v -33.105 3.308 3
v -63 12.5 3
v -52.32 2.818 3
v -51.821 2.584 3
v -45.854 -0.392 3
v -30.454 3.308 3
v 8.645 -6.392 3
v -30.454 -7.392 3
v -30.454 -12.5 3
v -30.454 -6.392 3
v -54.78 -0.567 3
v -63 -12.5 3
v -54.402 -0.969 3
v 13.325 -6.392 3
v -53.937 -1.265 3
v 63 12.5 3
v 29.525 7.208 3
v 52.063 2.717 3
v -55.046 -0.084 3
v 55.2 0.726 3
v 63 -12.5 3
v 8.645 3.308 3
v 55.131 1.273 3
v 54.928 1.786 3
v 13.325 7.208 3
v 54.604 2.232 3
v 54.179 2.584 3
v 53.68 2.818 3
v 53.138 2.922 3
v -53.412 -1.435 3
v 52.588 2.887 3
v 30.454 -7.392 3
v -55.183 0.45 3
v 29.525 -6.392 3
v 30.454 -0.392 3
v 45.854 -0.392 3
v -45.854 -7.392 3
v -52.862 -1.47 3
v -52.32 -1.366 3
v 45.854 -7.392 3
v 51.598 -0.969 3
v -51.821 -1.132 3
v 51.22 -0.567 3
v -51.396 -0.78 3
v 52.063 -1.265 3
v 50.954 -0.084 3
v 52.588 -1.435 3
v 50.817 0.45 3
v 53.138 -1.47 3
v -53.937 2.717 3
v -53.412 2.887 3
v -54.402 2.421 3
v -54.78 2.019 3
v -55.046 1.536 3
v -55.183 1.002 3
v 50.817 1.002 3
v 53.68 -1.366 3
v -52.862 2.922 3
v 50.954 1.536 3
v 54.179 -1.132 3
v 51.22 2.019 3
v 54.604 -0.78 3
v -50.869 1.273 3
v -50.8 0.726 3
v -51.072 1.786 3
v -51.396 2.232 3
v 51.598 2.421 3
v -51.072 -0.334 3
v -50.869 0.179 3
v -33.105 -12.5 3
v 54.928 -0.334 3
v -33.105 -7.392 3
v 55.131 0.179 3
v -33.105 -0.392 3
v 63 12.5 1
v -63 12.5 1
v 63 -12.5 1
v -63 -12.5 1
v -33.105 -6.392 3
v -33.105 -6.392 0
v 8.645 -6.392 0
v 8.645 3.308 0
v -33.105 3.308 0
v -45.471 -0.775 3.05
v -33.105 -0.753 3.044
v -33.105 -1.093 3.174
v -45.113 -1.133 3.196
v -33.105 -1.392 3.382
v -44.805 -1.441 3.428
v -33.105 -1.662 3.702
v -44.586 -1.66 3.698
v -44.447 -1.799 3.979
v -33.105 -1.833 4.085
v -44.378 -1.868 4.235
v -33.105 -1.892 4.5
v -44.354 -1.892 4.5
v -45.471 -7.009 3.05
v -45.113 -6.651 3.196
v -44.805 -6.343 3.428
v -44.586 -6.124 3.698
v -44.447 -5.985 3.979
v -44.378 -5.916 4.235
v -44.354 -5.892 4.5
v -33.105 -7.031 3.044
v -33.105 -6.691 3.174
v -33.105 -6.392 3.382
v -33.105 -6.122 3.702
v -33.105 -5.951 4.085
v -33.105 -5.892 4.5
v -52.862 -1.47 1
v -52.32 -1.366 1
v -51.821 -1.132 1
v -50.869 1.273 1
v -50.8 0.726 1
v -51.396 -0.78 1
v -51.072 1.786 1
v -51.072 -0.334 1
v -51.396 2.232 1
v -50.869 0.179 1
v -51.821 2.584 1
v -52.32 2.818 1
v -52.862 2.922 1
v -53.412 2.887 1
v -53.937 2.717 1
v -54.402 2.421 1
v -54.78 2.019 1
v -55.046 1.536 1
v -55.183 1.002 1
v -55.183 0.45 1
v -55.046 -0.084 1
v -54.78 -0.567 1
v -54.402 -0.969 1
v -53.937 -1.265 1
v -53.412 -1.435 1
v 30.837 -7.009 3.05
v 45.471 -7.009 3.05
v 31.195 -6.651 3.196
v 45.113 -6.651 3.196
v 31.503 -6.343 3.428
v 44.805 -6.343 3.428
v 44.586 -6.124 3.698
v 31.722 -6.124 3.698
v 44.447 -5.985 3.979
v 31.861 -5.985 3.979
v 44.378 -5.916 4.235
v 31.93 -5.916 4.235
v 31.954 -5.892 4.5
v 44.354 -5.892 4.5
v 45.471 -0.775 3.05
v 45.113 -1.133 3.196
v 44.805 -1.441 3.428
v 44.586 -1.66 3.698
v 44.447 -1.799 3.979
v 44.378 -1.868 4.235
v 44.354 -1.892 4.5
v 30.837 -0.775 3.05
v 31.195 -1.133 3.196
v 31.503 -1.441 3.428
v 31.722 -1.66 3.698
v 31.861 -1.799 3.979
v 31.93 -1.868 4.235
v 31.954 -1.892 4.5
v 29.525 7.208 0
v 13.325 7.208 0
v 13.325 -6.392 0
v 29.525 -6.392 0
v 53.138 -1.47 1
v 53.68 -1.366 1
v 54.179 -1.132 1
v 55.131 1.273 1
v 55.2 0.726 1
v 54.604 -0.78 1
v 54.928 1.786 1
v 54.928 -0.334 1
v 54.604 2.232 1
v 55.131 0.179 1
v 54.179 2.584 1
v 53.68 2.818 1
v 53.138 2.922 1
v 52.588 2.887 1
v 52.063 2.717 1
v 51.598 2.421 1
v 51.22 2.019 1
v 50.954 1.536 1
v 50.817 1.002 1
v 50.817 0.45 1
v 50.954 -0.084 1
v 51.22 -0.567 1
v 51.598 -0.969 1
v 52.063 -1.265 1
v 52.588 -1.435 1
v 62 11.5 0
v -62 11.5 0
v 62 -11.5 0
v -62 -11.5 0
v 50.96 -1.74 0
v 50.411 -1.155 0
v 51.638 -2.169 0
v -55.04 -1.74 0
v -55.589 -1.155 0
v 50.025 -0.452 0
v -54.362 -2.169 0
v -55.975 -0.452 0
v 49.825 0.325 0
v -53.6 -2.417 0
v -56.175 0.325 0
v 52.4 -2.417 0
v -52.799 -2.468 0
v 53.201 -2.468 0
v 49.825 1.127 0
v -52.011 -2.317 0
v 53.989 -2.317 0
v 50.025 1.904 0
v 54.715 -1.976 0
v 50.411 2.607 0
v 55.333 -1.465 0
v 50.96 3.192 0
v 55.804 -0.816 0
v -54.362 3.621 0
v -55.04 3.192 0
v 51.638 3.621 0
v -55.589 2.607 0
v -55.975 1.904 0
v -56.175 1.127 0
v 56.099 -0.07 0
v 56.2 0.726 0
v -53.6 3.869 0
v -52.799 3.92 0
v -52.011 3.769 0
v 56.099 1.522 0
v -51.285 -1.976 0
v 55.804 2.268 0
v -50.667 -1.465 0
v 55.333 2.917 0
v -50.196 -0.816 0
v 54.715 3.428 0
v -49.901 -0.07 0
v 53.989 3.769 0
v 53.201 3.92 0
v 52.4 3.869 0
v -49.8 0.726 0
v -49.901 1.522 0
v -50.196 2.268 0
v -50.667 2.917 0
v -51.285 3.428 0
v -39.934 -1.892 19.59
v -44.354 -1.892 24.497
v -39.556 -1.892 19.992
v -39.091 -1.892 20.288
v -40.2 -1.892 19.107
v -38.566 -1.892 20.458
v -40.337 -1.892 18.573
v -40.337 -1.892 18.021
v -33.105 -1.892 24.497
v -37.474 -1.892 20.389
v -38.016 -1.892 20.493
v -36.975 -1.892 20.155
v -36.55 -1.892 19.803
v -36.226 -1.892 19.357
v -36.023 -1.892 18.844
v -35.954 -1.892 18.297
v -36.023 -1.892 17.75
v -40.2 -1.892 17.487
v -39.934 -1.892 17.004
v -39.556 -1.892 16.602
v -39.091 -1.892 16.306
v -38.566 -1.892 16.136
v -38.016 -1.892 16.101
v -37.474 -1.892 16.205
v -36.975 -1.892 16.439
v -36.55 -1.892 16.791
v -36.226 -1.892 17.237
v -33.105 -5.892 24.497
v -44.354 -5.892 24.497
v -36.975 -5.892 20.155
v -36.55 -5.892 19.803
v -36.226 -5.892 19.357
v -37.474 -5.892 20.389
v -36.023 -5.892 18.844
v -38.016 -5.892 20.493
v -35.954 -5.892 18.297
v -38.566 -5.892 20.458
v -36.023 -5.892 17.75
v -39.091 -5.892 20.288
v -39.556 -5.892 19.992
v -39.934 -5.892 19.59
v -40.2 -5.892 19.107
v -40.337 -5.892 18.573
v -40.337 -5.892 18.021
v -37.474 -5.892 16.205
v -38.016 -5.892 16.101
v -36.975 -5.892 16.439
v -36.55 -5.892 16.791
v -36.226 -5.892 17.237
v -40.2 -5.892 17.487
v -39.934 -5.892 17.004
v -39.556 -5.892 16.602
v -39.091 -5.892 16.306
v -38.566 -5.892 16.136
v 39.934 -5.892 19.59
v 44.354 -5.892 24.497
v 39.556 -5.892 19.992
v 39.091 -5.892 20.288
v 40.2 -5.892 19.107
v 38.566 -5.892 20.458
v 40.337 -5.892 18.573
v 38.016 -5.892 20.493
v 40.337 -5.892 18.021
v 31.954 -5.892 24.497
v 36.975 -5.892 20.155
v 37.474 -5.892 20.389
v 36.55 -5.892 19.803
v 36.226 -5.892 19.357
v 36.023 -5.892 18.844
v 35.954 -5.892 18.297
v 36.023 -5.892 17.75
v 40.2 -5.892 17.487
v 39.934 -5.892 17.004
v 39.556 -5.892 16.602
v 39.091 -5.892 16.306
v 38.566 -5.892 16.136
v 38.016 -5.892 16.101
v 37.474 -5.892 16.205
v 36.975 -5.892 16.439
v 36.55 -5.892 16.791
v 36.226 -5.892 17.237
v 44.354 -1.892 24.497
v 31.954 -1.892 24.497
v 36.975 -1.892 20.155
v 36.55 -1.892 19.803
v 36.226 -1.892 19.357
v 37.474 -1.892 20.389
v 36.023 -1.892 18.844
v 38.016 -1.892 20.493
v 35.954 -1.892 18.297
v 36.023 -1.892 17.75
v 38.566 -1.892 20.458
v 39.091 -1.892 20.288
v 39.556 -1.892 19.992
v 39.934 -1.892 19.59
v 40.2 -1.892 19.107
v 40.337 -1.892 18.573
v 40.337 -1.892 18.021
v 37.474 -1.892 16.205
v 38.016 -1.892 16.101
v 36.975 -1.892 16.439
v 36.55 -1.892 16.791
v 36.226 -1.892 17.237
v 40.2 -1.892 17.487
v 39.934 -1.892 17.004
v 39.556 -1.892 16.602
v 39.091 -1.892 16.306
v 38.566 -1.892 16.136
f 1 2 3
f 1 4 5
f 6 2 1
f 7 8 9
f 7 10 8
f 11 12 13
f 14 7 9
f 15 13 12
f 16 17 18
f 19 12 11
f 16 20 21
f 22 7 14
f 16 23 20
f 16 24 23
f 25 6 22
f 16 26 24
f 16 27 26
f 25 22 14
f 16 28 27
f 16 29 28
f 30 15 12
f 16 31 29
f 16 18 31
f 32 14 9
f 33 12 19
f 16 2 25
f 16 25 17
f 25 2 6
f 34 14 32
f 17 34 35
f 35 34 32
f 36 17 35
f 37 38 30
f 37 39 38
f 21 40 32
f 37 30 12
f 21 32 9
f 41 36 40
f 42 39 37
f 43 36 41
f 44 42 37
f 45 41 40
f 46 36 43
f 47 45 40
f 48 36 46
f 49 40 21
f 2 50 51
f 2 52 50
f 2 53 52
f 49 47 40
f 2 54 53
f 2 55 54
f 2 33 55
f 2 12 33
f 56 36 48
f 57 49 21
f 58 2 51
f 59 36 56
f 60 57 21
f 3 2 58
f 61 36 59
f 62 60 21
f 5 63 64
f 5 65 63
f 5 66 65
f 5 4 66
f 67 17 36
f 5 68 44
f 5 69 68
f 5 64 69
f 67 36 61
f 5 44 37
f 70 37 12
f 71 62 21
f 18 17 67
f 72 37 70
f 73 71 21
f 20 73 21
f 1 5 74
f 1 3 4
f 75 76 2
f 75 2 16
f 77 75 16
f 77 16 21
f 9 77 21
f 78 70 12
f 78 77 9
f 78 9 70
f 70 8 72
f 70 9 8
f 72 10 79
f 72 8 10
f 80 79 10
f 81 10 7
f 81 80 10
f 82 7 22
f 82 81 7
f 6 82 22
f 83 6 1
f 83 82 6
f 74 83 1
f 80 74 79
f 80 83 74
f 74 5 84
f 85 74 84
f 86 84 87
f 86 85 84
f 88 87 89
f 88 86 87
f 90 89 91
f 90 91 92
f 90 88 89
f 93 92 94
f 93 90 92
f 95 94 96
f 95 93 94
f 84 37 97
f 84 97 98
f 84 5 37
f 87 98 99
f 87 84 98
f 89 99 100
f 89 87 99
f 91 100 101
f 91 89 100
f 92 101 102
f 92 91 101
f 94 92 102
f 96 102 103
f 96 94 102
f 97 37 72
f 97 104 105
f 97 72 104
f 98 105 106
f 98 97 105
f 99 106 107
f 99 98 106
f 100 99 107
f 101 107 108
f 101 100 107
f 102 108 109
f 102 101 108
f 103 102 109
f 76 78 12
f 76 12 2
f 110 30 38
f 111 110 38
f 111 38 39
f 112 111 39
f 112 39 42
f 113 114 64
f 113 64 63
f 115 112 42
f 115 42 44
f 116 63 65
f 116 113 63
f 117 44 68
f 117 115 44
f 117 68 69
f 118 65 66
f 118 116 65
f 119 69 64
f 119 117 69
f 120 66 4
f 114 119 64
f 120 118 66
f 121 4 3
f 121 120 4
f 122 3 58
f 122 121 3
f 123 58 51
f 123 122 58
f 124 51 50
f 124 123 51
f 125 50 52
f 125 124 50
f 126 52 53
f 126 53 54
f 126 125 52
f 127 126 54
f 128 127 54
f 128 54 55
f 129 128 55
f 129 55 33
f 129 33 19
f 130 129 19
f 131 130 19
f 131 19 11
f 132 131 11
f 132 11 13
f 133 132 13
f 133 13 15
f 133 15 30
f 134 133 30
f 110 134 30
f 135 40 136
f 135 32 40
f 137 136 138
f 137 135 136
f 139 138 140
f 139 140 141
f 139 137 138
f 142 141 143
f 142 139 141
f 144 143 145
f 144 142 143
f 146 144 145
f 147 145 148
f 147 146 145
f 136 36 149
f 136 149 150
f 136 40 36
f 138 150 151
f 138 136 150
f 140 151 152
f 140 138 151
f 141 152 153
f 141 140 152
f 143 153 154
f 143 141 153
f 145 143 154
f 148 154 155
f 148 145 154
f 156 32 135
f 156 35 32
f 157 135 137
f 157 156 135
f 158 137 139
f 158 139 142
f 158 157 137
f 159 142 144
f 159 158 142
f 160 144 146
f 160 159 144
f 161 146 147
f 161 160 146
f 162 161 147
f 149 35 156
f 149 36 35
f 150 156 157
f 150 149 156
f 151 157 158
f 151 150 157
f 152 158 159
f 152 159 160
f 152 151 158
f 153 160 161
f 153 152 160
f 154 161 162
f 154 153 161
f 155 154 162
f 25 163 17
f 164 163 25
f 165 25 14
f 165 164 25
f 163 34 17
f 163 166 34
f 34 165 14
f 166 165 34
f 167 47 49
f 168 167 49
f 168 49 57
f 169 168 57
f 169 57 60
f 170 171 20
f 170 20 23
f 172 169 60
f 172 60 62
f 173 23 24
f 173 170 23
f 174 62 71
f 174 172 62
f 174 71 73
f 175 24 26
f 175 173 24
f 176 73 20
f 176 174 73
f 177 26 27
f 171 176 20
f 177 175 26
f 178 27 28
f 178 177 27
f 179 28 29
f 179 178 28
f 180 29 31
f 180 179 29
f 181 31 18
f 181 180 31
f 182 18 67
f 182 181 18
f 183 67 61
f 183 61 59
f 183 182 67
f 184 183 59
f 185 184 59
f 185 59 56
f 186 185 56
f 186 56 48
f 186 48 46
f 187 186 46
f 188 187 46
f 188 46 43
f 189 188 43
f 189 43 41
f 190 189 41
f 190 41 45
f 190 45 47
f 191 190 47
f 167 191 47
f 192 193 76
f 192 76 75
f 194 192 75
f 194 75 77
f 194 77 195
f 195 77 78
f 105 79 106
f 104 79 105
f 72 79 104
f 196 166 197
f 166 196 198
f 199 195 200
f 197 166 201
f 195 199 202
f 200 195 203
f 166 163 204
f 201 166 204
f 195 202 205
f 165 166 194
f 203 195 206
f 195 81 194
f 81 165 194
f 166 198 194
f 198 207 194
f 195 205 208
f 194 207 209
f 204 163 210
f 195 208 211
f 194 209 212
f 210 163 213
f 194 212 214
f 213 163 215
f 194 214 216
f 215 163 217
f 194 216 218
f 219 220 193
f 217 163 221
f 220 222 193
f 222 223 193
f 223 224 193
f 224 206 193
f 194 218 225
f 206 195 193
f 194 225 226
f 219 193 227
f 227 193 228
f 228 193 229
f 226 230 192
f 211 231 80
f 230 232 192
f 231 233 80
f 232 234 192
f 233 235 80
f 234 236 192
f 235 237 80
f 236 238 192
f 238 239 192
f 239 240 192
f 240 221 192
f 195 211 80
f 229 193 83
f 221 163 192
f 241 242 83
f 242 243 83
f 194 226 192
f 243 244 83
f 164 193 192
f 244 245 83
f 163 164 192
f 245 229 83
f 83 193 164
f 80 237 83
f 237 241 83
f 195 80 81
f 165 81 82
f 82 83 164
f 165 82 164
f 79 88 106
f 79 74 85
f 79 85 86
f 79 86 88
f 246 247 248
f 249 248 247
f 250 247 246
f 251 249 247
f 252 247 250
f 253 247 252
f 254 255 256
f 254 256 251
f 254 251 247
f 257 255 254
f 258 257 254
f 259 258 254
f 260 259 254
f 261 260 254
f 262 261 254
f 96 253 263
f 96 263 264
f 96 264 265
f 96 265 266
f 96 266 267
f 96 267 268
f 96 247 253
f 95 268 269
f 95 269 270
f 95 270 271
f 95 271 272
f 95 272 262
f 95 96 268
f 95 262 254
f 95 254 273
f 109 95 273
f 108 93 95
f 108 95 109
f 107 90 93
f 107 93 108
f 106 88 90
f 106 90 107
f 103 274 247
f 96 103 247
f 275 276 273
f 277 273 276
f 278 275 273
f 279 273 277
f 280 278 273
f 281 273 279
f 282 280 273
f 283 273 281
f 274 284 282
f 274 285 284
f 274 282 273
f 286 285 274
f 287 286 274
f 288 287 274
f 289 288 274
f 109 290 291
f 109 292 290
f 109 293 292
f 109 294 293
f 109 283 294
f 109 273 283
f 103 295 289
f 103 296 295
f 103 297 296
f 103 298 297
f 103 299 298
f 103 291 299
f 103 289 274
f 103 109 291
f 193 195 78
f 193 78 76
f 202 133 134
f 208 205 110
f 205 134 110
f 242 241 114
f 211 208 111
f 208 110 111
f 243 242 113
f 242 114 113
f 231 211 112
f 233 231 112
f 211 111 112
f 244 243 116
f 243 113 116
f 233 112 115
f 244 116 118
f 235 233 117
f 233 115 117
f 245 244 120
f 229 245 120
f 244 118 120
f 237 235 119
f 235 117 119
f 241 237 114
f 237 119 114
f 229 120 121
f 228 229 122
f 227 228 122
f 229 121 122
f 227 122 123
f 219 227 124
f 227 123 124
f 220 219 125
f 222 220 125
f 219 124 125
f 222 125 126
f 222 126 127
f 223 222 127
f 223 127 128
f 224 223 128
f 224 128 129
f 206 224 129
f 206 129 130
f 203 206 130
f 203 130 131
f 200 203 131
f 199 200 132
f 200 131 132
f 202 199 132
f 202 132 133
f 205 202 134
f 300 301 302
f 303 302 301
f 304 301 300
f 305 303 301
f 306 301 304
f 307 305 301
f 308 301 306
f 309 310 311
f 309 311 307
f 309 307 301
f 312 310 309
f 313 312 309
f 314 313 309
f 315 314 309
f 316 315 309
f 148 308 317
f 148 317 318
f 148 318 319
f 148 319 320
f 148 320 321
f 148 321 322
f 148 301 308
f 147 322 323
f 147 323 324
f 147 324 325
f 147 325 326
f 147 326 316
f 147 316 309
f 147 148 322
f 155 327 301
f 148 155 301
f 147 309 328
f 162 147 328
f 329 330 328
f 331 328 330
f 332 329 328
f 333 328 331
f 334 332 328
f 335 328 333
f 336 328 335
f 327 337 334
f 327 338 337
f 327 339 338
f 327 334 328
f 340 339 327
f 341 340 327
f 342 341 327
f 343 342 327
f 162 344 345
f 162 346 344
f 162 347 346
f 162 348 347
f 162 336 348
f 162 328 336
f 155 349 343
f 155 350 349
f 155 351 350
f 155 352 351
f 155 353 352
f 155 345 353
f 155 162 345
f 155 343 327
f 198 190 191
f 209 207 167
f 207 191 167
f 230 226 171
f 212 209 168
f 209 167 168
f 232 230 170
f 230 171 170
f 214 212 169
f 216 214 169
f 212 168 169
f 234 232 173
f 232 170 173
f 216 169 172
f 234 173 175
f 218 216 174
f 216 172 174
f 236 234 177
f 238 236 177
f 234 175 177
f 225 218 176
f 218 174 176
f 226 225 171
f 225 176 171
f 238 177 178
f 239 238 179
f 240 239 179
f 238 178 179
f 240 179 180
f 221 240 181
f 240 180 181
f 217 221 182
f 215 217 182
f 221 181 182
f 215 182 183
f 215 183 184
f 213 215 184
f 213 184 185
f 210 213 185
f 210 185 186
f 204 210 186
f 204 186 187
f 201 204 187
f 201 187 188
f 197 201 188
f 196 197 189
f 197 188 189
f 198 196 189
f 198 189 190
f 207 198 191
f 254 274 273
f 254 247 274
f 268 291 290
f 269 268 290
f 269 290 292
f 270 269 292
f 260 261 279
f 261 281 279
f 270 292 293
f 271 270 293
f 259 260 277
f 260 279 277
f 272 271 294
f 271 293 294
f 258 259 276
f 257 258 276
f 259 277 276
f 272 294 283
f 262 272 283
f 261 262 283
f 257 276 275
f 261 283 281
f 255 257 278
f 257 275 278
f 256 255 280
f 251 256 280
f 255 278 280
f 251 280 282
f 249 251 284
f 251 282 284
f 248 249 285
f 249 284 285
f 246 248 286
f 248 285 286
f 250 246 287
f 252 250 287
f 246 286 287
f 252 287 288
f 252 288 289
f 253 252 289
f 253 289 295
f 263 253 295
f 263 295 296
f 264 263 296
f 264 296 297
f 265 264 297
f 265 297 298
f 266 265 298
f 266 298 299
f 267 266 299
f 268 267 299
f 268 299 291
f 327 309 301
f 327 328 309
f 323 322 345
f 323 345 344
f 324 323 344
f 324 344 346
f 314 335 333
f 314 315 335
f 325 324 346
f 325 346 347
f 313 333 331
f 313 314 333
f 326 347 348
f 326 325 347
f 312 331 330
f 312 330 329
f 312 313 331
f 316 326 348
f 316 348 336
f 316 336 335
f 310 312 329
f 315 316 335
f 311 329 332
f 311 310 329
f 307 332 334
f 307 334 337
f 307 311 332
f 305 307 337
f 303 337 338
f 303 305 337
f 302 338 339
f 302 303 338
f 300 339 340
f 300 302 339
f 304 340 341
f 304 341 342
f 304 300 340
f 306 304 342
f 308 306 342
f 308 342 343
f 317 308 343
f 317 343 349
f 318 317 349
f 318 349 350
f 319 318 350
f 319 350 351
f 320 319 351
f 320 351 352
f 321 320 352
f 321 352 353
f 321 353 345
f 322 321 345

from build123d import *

# Parameters (mm, degrees)
SKETCH_W        = 126
SKETCH_H        = 25
SKETCH_R        = 2.2
PAD_DEPTH       = 3
SKETCH001_W     = 12.4
SKETCH001_H     = 4
PAD001_DEPTH    = 21.497
SKETCH002_R     = 2.2
POCKET_DEPTH    = 4
CHAMFER_SIZE    = 1
FILLET_R        = 1.5
SKETCH003_W     = 41.75
SKETCH003_H     = 9.7
SKETCH003_W_2   = 16.2
SKETCH003_H_2   = 13.6
POCKET001_DEPTH = 24.498
SKETCH004_W     = 2.651
SKETCH004_H     = 0.381966
POCKET002_DEPTH = 15.808


with BuildPart() as part:
    # Sketch → Pad (new body)
    with BuildSketch(Plane.XY):
        Rectangle(SKETCH_W, SKETCH_H)
        with Locations((-53, 0.726)):
            Circle(SKETCH_R, mode=Mode.SUBTRACT)
        with Locations((53, 0.726)):
            Circle(SKETCH_R, mode=Mode.SUBTRACT)
    extrude(amount=PAD_DEPTH)

    # Sketch001 → Pad001 (new body)
    with BuildSketch(Plane.XY.offset(3)):
        with Locations((-38.154, -3.892)):
            Rectangle(SKETCH001_W, SKETCH001_H)
        with Locations((38.154, -3.892)):
            Rectangle(SKETCH001_W, SKETCH001_H)
    extrude(amount=PAD001_DEPTH)

    # Sketch002 → Pocket (cut)
    with BuildSketch(Plane.XZ.offset(5.892)):
        with Locations((-38.154, 18.297)):
            Circle(SKETCH002_R)
    pocket = extrude(amount=-POCKET_DEPTH, mode=Mode.SUBTRACT)

    # Mirrored: Pocket across Sketch002 V_Axis
    add(pocket.mirror(Plane(origin=(0, -5.892, 0), x_dir=(0, -1, 0), z_dir=(1, 0, 0))), mode=Mode.SUBTRACT)

    # Chamfer
    chamfer_edges = [part.edges().sort_by_distance(p)[0] for p in [
        (0, 12.5, 0),
        (63, 0, 0),
        (0, -12.5, 0),
        (-63, 0, 0),
        (50.8, 0.726, 0),
        (-55.2, 0.726, 0),
    ]]
    chamfer(chamfer_edges, length=CHAMFER_SIZE)

    # Fillet
    fillet_edges = [part.edges().sort_by_distance(p)[0] for p in [
        (38.154, -5.892, 3),
        (31.954, -3.892, 3),
        (38.154, -1.892, 3),
        (44.354, -3.892, 3),
        (-38.154, -5.892, 3),
        (-31.954, -3.892, 3),
        (-38.154, -1.892, 3),
        (-44.354, -3.892, 3),
    ]]
    fillet(fillet_edges, radius=FILLET_R)

    # Sketch003 → Pocket001 (cut, through all)
    with BuildSketch(Plane(origin=(0, 0, 0), x_dir=(1, 0, 0), z_dir=(0, 0, -1))):
        with Locations((-12.23, 1.542)):
            Rectangle(SKETCH003_W, SKETCH003_H)
        with Locations((21.425, -0.408)):
            Rectangle(SKETCH003_W_2, SKETCH003_H_2)
    extrude(amount=-POCKET001_DEPTH, mode=Mode.SUBTRACT)

    # Sketch004 → Pocket002 (cut)
    with BuildSketch(Plane.XZ.offset(12.5)):
        with Locations((-31.7795, 3.190983)):
            Rectangle(SKETCH004_W, SKETCH004_H)
    extrude(amount=-POCKET002_DEPTH, mode=Mode.SUBTRACT)


solid = part.part
